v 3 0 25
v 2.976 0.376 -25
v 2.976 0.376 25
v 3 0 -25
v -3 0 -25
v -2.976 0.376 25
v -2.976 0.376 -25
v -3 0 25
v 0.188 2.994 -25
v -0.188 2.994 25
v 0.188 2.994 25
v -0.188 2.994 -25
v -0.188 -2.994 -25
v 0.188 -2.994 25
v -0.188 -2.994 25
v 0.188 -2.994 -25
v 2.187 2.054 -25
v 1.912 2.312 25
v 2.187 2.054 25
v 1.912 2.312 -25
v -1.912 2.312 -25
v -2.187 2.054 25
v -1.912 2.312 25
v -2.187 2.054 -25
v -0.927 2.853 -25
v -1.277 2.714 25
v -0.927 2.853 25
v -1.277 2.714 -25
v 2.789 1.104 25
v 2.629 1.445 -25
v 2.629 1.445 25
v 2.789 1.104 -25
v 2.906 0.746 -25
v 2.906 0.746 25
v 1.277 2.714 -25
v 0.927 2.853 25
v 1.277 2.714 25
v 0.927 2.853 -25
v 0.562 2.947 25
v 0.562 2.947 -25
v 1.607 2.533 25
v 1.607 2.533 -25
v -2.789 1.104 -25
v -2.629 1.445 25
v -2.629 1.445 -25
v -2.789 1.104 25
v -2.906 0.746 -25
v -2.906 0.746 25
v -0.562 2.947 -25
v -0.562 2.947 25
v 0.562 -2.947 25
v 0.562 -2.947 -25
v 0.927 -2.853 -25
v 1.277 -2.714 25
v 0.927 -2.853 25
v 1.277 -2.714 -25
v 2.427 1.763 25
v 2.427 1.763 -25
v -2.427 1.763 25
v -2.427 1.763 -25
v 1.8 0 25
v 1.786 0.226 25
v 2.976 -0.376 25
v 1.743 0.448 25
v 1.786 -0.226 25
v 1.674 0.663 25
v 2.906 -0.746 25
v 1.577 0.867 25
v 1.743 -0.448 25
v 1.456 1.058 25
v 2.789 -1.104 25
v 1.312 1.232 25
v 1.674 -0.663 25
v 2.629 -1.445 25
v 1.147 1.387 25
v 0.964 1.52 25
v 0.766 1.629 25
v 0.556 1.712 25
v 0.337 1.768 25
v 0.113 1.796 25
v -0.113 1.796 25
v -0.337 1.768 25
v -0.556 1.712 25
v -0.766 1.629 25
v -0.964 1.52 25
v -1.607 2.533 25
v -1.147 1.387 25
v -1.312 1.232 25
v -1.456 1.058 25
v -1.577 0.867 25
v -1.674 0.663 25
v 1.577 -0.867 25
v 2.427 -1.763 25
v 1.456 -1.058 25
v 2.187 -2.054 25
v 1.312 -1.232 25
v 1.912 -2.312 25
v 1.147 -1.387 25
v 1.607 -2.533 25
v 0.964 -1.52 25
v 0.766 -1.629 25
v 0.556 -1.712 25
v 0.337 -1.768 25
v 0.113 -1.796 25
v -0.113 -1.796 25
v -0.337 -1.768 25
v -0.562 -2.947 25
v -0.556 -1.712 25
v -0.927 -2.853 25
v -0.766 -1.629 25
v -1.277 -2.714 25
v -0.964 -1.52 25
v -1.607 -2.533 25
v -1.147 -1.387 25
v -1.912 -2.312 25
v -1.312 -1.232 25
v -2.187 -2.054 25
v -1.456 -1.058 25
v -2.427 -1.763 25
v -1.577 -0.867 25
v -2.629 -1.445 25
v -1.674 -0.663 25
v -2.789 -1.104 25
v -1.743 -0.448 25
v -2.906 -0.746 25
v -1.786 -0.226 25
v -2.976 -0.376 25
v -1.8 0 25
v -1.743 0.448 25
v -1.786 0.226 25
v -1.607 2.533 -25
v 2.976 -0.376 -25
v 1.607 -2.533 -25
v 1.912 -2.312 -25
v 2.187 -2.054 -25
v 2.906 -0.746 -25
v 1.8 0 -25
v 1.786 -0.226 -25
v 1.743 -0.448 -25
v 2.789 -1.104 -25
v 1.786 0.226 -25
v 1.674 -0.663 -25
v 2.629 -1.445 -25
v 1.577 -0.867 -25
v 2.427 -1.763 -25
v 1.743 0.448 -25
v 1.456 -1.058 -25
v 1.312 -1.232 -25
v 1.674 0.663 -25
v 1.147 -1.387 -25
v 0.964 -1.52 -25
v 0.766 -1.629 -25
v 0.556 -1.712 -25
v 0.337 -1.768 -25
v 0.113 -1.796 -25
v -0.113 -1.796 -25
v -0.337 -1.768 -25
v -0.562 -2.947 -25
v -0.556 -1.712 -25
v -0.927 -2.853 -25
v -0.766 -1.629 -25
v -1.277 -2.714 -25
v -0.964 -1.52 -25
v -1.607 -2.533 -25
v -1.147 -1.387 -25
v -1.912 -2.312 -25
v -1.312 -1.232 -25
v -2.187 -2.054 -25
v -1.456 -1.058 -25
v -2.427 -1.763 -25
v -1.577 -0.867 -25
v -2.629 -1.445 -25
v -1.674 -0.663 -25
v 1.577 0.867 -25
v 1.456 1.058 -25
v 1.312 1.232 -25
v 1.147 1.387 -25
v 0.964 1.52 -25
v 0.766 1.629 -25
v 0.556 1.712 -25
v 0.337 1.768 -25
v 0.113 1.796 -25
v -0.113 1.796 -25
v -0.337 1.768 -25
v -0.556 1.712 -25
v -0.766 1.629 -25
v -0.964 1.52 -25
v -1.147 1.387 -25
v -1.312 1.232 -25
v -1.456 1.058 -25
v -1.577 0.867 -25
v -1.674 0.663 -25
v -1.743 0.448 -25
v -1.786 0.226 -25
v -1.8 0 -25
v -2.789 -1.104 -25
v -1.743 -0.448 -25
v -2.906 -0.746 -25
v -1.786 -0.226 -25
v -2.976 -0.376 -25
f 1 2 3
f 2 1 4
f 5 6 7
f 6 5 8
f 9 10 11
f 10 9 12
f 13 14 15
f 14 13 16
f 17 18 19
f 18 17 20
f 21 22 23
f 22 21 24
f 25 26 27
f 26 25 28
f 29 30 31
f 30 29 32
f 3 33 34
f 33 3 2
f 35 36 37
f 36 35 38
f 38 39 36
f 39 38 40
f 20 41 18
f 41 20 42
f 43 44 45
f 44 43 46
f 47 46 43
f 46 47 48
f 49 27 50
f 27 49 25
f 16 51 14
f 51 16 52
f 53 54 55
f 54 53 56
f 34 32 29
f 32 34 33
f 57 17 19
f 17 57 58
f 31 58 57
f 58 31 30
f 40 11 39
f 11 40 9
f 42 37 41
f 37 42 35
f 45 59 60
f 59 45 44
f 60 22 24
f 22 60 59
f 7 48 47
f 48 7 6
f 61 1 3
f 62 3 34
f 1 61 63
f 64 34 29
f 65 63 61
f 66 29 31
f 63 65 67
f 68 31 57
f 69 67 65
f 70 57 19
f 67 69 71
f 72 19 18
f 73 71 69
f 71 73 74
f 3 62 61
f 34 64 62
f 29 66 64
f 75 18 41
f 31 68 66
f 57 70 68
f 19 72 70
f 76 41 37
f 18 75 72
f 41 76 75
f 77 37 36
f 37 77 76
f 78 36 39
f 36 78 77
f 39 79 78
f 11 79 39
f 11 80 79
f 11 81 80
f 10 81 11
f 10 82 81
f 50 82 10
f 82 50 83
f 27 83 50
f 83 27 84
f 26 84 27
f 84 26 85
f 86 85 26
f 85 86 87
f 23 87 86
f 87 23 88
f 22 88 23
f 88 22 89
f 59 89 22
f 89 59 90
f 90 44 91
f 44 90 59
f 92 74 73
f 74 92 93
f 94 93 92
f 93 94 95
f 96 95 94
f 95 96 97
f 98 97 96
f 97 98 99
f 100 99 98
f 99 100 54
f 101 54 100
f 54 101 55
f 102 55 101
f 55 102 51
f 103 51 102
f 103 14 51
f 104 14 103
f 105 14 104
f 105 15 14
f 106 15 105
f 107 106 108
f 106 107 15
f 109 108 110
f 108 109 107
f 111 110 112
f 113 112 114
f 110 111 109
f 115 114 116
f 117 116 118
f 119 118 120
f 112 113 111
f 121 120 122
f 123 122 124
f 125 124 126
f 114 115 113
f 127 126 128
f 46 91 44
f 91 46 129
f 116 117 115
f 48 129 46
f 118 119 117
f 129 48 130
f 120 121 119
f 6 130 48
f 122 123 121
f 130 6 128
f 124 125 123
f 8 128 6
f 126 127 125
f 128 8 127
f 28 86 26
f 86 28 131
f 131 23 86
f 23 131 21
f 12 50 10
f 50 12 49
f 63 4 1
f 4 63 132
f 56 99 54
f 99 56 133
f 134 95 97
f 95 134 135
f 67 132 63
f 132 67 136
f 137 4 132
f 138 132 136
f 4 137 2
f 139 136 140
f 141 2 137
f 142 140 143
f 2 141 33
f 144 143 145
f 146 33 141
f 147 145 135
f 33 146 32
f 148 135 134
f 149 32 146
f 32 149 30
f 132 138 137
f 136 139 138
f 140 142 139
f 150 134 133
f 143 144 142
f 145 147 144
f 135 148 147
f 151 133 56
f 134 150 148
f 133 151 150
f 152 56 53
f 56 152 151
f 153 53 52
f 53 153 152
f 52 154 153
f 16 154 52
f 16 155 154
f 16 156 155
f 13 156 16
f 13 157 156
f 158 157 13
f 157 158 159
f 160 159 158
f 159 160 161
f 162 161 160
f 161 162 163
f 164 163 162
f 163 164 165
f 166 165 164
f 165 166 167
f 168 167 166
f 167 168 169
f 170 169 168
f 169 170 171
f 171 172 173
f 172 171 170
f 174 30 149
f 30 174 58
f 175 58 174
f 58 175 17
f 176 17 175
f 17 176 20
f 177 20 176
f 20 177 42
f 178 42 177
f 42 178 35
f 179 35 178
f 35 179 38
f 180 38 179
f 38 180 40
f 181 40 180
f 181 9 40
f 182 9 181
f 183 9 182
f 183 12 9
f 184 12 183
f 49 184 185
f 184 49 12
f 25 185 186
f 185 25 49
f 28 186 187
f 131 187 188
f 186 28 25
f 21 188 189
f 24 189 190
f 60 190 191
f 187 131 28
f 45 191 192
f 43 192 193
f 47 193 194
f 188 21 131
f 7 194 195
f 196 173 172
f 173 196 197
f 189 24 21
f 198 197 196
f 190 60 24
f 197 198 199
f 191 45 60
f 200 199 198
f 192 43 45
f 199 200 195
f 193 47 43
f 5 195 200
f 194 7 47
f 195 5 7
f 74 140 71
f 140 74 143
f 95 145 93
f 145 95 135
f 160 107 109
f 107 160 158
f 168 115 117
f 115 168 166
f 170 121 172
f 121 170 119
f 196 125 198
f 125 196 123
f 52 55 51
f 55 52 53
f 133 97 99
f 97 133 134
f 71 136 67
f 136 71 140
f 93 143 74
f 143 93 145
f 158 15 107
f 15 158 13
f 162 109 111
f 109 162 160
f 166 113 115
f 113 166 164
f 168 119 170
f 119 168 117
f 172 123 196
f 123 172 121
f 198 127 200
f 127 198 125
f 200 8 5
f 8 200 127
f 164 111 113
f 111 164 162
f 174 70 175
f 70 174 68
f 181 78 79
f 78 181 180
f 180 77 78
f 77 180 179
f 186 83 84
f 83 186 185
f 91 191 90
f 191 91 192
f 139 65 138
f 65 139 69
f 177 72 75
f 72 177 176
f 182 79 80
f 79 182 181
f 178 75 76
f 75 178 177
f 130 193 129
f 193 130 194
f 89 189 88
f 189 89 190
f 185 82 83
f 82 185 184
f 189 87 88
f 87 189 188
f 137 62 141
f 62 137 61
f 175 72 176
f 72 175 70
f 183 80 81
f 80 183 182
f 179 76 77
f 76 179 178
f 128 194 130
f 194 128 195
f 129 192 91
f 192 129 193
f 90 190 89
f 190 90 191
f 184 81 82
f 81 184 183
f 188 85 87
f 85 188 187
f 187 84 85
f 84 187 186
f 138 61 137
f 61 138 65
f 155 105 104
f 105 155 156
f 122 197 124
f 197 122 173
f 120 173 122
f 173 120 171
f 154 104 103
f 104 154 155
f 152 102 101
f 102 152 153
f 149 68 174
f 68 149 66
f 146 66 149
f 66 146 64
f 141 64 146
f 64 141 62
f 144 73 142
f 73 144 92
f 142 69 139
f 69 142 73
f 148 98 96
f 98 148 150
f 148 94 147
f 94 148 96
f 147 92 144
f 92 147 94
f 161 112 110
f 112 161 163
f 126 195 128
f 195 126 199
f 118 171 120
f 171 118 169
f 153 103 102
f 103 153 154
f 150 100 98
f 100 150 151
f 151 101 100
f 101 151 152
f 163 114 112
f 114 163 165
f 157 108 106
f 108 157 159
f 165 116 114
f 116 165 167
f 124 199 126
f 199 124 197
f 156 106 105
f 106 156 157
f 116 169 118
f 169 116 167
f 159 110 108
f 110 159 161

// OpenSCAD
$fn = 50;


difference() {
	union() {
		translate(v = [0, 0, -25.0000000000]) {
			cylinder(h = 50, r = 3.0000000000);
		}
	}
	union() {
		translate(v = [0, 0, -100.0000000000]) {
			cylinder(h = 200, r = 1.8000000000);
		}
	}
}
